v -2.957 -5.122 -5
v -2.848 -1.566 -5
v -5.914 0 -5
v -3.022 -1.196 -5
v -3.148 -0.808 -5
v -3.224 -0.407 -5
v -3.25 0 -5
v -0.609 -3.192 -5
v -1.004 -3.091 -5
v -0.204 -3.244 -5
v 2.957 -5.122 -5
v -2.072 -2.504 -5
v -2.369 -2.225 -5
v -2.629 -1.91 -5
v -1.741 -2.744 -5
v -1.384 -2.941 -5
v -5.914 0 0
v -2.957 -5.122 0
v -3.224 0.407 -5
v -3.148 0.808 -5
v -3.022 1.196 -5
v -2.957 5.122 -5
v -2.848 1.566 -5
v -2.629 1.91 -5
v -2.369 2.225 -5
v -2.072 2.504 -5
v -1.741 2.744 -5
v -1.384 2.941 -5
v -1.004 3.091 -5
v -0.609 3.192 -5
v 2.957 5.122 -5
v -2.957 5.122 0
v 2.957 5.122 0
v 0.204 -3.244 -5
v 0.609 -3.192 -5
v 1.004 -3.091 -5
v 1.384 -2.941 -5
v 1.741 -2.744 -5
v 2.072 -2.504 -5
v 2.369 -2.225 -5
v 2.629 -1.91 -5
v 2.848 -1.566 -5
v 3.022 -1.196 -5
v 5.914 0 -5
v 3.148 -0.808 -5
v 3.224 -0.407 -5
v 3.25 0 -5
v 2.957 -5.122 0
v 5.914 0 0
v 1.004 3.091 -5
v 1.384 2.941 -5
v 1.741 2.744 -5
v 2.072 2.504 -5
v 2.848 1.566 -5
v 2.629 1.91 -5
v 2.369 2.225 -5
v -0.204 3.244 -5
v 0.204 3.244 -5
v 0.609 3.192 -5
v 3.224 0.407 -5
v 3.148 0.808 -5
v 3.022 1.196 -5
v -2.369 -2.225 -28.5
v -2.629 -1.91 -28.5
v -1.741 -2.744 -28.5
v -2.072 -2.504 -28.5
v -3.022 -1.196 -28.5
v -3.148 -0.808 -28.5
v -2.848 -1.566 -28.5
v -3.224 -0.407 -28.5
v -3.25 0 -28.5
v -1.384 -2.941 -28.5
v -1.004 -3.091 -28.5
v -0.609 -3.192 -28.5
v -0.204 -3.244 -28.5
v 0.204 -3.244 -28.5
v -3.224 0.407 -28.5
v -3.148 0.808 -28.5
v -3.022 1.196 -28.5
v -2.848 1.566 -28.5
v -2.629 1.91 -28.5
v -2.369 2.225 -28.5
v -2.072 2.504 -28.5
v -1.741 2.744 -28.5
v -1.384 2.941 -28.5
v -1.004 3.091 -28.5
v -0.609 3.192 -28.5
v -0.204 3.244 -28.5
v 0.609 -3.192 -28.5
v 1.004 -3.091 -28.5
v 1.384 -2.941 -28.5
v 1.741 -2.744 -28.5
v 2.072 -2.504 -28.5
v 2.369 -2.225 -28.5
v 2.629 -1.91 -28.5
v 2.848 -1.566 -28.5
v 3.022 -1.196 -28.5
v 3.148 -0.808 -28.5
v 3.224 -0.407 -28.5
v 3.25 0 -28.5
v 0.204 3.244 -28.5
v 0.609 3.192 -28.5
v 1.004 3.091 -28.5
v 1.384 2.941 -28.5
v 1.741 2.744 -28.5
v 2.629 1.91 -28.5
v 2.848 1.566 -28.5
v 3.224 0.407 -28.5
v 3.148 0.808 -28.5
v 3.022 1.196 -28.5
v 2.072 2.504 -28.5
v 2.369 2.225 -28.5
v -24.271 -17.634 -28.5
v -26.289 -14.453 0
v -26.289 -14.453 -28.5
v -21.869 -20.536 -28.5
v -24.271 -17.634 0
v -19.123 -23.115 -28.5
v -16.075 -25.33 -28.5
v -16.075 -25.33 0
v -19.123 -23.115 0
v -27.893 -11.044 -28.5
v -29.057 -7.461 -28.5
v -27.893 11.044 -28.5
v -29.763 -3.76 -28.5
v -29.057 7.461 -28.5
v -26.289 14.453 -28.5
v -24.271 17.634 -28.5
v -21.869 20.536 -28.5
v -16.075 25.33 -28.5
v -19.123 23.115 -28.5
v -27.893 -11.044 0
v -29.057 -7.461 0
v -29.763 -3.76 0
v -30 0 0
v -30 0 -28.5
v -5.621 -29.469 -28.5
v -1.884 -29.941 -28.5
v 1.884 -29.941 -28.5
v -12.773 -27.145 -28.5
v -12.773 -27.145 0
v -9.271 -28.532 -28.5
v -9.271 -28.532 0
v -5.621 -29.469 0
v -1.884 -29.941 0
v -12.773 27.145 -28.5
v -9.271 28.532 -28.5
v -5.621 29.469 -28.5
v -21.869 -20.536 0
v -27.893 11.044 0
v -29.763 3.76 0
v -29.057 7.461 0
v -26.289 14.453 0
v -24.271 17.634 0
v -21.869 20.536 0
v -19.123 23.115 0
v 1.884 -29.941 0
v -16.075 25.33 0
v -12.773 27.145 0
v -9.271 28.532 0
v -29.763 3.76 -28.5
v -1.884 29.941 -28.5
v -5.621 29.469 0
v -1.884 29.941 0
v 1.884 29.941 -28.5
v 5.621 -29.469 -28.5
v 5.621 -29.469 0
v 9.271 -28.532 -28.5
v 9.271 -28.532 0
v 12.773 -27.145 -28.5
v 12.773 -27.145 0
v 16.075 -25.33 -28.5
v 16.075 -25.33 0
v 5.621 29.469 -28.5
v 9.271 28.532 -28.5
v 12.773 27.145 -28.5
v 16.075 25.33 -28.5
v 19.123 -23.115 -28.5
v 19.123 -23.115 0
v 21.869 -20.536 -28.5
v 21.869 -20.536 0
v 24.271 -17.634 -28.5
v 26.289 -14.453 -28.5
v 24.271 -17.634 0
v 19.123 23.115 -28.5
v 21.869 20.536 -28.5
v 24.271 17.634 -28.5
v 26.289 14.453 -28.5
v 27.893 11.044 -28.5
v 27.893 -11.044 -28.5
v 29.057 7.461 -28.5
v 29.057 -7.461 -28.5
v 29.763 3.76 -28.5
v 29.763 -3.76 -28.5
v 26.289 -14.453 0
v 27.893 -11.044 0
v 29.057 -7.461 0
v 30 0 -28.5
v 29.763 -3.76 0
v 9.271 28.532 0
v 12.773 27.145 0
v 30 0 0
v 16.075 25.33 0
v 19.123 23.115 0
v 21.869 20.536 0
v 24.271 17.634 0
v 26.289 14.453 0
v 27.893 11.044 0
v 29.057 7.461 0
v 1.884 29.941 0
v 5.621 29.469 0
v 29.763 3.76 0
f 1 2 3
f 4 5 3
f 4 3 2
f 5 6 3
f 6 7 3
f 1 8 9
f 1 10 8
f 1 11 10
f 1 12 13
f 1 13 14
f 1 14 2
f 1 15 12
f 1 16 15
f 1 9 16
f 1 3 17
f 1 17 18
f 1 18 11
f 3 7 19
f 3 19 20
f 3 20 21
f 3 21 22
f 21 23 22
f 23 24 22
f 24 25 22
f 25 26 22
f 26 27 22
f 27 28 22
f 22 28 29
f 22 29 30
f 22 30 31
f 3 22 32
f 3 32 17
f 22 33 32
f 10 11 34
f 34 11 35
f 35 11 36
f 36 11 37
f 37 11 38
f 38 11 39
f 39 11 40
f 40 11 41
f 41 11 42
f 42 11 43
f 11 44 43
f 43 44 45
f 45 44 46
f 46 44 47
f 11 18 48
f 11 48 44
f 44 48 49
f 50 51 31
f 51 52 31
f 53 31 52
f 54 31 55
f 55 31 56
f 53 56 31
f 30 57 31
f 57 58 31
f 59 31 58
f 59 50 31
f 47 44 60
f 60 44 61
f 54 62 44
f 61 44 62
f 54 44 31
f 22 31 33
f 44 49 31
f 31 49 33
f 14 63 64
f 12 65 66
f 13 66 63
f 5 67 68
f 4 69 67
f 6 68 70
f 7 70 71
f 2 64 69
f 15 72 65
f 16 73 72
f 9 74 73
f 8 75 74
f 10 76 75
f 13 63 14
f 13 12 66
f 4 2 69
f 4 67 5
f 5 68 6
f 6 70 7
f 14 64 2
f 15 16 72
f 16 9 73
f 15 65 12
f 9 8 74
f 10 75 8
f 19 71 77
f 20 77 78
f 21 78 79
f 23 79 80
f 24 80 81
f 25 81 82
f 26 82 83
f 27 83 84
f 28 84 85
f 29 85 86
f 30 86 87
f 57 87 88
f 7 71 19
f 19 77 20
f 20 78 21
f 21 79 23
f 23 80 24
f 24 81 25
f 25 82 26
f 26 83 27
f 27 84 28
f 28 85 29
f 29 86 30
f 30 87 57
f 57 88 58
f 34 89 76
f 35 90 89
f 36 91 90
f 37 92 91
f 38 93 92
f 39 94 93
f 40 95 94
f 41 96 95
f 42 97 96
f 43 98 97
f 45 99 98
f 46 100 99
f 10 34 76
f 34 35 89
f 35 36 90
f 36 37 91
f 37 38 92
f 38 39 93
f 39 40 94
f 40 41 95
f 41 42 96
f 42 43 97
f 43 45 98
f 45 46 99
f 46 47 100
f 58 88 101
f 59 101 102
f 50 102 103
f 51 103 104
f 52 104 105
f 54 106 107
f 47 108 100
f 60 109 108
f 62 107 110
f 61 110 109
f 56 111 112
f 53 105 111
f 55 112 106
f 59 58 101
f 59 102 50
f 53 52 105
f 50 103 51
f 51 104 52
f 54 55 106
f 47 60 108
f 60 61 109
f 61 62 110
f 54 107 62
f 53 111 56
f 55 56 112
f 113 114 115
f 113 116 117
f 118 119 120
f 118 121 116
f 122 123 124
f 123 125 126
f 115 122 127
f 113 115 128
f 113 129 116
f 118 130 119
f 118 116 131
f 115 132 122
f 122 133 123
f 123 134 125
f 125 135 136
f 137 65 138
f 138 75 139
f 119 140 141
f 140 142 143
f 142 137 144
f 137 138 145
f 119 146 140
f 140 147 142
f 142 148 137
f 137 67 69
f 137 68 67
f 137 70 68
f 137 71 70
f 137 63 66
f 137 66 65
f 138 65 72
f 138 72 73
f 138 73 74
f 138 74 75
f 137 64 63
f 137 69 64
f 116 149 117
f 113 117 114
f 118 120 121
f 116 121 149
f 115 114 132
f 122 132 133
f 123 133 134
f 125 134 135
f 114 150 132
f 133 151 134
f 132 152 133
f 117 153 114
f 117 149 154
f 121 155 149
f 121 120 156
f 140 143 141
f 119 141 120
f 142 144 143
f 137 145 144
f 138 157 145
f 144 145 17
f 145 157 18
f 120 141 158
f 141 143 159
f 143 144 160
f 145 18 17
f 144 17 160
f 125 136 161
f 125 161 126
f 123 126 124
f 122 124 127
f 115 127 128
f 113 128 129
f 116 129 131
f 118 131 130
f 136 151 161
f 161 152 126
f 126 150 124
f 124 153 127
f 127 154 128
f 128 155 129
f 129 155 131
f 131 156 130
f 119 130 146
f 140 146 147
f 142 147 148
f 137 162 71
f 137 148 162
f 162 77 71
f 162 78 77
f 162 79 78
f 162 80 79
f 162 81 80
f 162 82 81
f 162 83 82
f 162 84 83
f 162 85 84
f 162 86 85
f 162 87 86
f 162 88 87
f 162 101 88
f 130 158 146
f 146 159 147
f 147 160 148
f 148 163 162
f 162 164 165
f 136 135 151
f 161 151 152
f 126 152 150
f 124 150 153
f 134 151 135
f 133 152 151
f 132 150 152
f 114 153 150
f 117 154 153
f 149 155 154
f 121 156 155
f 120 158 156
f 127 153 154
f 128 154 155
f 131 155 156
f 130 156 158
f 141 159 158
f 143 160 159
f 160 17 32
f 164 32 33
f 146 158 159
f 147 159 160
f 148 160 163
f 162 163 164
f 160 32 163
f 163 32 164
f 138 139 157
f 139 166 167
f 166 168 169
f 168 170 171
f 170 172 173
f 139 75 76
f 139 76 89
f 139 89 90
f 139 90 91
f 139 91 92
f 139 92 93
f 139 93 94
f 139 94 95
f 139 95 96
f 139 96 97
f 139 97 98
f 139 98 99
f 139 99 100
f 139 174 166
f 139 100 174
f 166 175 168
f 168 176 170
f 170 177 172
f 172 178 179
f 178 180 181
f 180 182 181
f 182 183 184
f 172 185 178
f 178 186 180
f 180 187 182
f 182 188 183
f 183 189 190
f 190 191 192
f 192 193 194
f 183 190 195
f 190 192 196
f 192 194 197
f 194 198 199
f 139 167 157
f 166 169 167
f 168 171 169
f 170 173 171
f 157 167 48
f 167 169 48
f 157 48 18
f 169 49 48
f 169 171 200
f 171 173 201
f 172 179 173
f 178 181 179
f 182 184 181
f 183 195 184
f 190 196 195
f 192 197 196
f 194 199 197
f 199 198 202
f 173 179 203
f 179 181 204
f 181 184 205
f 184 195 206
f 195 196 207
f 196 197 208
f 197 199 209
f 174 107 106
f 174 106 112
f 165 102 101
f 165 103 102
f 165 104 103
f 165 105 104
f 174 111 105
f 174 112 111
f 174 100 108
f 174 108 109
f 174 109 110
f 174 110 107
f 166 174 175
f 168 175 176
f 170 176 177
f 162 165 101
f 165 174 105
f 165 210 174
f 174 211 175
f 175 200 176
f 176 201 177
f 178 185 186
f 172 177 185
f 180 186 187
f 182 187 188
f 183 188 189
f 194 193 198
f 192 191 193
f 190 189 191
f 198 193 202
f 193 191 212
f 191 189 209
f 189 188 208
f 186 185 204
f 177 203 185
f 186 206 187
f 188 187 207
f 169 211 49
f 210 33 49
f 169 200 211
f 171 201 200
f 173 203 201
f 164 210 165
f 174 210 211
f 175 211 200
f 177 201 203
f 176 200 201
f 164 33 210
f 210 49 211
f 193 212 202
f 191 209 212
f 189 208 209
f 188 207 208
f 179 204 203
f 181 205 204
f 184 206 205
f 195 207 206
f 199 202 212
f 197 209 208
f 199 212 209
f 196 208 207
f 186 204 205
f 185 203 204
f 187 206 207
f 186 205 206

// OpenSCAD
$fn = 50;


difference() {
	union() {
		translate(v = [0, 0, -28.5000000000]) {
			cylinder(h = 28.5000000000, r = 30.0000000000);
		}
	}
	union() {
		translate(v = [0, 0, 0]) {
			rotate(a = [0, 0, 0]) {
				difference() {
					union() {
						translate(v = [0, 0, -5]) {
							linear_extrude(height = 5) {
								polygon(points = [[5.9142500000, 0.0000000000], [2.9571250000, 5.1218907443], [-2.9571250000, 5.1218907443], [-5.9142500000, 0.0000000000], [-2.9571250000, -5.1218907443], [2.9571250000, -5.1218907443]]);
							}
						}
					}
					union();
				}
			}
		}
		#translate(v = [0, 0, -100.0000000000]) {
			cylinder(h = 200, r = 3.2500000000);
		}
	}
}
